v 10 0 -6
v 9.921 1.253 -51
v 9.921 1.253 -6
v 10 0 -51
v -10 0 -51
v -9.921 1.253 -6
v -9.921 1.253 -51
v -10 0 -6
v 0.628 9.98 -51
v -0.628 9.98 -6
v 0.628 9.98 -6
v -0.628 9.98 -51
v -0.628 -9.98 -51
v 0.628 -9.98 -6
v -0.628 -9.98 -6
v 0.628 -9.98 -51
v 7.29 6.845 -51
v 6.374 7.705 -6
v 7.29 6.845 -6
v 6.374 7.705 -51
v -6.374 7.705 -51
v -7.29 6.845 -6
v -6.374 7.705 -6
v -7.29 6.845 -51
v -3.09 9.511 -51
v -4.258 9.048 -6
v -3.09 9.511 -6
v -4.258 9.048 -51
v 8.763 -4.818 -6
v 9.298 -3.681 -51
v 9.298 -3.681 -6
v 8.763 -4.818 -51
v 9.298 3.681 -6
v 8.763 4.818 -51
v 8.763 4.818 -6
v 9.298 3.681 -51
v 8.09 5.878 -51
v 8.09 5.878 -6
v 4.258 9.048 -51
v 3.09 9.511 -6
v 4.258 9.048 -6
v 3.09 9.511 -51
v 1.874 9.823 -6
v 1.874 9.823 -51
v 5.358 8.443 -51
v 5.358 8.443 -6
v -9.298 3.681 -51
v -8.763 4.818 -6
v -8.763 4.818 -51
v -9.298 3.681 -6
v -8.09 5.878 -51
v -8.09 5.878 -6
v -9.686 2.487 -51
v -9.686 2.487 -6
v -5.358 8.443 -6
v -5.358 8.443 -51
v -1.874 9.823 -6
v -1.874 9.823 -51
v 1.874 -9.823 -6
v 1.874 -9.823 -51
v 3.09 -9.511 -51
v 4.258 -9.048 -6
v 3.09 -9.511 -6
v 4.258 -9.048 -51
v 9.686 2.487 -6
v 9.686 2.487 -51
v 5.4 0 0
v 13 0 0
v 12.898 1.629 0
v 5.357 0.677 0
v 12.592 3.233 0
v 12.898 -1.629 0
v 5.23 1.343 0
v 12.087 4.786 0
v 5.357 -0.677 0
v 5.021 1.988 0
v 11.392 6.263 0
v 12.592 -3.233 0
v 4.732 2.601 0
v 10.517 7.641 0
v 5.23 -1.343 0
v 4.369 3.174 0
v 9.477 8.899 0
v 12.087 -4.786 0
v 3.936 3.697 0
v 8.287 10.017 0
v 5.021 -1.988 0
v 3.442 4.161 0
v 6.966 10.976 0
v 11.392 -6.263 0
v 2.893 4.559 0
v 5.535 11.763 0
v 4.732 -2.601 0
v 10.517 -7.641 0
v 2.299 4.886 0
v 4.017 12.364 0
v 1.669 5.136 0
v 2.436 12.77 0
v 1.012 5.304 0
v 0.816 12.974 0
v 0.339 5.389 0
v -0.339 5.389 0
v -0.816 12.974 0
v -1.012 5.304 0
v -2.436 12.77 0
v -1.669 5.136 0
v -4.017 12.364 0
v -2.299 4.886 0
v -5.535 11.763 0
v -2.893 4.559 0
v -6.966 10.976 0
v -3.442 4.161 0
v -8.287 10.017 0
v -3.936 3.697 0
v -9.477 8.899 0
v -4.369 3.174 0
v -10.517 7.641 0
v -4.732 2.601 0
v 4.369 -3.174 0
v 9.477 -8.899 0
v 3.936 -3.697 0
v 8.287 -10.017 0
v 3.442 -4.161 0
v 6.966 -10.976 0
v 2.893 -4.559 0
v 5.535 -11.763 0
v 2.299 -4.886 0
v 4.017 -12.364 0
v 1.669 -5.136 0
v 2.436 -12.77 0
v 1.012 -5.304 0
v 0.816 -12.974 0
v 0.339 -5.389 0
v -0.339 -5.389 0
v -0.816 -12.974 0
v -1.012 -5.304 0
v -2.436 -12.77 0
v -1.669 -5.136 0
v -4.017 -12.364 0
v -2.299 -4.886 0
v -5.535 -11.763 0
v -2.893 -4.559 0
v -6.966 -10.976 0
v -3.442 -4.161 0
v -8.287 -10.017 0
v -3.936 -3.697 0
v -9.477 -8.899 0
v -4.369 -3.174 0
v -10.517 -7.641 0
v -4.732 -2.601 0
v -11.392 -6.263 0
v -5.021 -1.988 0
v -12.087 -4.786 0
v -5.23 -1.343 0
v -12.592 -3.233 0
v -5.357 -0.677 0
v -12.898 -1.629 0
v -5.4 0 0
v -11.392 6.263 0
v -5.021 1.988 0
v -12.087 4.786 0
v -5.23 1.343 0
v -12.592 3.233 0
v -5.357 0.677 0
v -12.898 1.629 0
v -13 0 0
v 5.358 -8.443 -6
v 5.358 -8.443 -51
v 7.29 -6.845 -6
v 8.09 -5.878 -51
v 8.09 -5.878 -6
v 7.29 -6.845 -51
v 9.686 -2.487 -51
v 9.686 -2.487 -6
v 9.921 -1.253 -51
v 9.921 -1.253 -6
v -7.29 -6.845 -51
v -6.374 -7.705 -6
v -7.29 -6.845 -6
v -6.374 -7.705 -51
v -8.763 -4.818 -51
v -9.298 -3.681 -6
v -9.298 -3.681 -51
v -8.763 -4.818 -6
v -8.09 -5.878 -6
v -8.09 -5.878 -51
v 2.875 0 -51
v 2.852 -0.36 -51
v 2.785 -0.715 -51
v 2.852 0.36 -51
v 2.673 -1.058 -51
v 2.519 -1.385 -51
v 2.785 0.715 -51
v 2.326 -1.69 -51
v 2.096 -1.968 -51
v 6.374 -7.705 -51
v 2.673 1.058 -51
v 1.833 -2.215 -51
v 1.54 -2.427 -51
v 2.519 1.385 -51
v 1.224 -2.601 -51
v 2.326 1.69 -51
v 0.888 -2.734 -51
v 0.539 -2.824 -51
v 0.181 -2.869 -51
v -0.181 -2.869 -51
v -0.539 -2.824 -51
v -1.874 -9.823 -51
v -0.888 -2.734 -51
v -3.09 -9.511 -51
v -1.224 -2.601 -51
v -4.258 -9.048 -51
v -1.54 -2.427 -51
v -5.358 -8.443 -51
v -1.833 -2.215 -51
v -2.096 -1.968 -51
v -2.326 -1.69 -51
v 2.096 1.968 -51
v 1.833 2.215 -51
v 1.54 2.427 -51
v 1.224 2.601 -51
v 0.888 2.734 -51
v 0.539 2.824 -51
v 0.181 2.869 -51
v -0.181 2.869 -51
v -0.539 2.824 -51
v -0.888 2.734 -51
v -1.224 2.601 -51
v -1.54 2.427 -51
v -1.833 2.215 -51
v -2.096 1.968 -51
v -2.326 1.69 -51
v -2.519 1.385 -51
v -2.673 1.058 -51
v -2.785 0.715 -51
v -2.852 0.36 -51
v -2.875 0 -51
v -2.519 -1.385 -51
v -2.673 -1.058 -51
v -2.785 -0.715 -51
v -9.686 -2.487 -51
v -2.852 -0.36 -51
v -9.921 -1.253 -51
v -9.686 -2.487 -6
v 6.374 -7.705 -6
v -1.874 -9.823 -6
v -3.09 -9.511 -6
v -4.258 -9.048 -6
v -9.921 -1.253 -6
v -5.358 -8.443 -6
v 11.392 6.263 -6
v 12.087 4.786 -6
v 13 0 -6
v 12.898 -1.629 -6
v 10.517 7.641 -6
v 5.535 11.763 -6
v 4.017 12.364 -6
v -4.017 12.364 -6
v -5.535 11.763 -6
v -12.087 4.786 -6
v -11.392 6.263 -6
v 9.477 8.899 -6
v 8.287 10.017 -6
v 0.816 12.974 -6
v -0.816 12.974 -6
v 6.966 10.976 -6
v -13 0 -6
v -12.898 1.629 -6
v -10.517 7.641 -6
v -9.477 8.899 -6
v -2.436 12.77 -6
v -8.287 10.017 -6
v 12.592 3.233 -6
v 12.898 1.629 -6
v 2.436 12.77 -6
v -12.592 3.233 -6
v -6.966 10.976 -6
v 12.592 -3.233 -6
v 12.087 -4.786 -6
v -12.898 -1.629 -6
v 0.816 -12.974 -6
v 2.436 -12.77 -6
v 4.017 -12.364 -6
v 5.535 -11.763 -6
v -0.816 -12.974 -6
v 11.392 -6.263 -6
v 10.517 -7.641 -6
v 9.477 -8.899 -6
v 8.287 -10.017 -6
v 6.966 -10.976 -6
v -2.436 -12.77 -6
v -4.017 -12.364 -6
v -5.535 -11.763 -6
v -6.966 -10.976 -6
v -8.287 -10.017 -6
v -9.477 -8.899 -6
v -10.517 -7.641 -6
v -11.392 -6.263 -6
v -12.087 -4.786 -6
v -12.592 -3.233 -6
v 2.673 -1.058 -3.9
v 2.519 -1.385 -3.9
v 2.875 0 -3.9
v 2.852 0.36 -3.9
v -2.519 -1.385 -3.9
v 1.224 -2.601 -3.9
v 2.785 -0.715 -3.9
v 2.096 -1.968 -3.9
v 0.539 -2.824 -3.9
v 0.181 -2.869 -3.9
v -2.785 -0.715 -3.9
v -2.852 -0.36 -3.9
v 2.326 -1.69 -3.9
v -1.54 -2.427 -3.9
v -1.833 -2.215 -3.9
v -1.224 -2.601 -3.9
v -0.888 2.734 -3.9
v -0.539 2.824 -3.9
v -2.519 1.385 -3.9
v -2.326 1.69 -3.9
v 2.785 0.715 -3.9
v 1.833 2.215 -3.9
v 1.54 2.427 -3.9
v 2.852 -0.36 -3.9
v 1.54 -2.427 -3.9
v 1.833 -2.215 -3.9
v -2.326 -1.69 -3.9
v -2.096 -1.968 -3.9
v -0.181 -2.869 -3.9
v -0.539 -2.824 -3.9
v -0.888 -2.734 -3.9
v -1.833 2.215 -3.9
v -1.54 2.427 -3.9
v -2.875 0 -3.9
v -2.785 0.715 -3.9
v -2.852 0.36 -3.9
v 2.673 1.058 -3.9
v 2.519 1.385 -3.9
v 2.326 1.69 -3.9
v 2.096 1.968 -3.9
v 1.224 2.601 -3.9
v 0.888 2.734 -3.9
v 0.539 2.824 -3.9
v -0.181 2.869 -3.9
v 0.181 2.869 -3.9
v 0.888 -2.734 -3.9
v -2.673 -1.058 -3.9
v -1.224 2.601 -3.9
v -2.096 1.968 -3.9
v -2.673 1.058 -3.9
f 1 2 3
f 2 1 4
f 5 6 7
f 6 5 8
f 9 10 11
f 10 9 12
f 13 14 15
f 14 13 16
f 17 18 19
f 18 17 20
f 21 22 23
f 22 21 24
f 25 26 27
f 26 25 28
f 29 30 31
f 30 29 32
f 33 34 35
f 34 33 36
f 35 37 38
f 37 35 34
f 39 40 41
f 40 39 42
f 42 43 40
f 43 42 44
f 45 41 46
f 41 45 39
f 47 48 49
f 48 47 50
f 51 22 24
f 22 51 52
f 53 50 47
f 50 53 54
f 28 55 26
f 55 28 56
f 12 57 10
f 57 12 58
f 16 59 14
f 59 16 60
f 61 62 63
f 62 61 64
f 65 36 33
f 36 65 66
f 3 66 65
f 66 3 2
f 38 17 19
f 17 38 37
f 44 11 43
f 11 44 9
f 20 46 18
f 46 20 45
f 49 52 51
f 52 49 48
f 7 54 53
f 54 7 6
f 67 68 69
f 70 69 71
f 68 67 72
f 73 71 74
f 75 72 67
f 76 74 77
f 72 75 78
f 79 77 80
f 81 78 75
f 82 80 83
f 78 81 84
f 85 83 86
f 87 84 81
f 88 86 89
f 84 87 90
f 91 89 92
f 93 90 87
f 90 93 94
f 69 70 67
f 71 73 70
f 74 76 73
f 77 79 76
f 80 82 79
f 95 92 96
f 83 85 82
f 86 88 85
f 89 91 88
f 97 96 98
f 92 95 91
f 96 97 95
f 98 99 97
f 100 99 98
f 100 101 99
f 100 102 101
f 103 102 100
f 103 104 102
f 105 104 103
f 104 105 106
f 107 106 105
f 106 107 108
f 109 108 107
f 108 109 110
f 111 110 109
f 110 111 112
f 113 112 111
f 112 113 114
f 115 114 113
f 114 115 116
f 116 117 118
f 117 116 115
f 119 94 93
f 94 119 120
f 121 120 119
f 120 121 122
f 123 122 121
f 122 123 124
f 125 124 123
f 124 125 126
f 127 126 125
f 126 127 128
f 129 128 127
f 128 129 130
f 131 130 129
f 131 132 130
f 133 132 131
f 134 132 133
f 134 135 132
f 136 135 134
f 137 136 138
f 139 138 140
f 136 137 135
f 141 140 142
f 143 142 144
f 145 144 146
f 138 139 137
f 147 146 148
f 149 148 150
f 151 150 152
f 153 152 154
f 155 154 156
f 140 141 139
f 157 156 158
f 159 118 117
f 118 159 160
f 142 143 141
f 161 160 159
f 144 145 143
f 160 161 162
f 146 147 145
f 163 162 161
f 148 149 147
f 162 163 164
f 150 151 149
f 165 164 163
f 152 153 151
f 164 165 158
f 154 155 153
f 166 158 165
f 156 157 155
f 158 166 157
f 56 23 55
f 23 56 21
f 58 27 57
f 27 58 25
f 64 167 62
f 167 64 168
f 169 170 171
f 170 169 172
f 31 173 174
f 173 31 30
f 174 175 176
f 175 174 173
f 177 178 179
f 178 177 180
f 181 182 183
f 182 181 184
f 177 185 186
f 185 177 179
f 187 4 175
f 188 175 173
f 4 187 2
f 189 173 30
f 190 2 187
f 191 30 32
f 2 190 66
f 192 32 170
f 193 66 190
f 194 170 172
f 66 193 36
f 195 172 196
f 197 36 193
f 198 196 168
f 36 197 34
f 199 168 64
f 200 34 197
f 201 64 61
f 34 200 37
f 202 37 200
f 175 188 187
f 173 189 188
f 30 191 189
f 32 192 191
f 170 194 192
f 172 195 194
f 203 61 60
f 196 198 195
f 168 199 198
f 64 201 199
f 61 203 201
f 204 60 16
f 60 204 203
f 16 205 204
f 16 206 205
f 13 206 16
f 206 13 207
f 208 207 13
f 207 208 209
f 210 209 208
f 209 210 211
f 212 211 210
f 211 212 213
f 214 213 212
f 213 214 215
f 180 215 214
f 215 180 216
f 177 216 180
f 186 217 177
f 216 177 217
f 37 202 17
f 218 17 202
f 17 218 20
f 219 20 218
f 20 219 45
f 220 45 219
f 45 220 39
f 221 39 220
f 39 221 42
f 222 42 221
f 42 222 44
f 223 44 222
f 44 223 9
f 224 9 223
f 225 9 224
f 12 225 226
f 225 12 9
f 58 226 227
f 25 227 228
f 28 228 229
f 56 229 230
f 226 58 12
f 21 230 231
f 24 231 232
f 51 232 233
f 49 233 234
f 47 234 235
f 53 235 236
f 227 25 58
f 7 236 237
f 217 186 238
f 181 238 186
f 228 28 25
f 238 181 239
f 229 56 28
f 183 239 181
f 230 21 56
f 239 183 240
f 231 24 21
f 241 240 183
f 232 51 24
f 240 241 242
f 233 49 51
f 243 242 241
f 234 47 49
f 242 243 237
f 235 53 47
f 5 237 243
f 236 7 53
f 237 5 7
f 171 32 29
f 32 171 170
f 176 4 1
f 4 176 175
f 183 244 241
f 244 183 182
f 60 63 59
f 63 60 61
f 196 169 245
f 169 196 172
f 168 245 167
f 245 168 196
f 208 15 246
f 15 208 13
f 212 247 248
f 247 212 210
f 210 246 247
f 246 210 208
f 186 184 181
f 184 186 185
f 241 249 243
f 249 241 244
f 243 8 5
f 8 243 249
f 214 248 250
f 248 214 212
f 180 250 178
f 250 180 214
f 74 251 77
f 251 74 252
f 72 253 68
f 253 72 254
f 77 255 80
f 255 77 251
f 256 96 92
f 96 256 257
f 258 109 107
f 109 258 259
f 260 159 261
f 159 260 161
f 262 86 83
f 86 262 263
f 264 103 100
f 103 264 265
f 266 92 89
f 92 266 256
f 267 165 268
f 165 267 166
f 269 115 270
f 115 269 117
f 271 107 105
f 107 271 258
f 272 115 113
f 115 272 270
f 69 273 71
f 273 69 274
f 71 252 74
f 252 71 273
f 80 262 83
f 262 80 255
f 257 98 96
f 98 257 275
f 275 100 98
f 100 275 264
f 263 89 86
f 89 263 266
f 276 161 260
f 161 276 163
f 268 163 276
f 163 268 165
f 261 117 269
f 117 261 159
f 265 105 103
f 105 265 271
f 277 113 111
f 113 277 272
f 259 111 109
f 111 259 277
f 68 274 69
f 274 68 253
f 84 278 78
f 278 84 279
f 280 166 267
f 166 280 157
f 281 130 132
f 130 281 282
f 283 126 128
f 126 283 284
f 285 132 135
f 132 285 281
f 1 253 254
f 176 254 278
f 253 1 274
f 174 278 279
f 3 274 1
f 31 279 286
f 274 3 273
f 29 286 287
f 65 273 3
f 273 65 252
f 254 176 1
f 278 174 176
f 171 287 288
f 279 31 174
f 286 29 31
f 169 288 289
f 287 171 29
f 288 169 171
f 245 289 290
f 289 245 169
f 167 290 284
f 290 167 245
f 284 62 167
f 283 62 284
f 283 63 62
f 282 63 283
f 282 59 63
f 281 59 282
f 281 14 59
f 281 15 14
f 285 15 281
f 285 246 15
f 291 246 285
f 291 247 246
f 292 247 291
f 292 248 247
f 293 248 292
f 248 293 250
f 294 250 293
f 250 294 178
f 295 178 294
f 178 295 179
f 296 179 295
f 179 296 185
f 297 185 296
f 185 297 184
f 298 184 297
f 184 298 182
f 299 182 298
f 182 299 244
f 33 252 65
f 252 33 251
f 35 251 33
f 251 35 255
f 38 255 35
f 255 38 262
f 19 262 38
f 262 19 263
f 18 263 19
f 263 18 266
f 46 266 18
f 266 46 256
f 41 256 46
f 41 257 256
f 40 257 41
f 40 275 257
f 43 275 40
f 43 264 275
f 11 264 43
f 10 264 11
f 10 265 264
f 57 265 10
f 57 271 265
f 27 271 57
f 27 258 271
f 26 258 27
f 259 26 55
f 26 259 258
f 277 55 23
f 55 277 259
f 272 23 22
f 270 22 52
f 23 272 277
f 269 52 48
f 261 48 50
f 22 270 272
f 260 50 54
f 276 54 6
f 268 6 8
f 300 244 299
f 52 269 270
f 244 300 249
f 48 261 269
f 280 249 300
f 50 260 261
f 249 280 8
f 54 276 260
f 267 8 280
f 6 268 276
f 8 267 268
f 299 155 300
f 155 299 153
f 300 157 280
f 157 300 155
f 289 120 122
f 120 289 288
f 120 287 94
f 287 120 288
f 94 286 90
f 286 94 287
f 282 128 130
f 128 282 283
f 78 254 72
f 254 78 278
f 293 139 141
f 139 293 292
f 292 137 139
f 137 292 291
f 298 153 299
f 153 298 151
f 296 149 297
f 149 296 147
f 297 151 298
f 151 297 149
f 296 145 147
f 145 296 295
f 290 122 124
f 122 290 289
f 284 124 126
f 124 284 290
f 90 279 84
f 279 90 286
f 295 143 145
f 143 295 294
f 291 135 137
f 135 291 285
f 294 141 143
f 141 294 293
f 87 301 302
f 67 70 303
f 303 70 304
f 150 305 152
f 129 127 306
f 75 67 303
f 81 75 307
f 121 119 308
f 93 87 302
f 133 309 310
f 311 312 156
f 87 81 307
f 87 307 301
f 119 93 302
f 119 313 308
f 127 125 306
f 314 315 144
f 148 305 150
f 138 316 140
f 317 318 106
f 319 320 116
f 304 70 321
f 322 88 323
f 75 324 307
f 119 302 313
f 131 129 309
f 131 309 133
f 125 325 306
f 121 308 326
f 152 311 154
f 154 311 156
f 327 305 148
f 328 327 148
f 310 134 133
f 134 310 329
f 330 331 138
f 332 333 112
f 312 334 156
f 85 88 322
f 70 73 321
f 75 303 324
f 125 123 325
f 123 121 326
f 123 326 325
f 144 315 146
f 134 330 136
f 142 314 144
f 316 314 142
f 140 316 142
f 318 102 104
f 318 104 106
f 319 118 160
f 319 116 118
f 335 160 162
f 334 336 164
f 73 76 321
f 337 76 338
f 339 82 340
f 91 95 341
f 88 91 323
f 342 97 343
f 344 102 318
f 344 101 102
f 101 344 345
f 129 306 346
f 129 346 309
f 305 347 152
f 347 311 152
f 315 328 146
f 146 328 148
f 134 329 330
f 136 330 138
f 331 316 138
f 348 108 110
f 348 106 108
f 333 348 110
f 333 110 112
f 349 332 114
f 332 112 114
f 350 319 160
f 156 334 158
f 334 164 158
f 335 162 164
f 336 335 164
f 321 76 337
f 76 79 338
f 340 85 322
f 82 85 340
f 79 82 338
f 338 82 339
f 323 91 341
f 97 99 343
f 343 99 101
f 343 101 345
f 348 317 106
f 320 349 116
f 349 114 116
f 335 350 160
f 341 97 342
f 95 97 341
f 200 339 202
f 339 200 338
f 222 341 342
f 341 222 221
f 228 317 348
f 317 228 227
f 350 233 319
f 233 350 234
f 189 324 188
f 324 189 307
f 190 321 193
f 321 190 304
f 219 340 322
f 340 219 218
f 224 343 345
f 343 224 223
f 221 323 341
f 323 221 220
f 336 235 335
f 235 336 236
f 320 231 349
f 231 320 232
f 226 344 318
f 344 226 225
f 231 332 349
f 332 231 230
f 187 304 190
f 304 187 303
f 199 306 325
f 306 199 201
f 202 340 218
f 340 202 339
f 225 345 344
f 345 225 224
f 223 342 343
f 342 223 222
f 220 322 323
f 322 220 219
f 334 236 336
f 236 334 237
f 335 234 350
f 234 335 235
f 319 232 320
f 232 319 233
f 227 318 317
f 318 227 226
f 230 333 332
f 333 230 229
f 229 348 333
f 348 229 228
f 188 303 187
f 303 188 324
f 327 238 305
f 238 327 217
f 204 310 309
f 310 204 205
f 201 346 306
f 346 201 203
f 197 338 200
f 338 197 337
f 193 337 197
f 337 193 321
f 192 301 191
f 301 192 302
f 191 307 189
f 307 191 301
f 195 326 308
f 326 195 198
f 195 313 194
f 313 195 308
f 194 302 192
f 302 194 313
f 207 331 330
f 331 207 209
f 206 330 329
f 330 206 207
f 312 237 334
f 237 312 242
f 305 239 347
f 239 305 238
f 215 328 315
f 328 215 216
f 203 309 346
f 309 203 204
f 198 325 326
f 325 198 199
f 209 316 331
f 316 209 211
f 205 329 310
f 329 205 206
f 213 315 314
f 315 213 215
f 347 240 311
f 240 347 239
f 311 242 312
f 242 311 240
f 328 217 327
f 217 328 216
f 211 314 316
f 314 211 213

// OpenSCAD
$fn = 50;


difference() {
	union() {
		translate(v = [0, 0, -51.0000000000]) {
			cylinder(h = 51, r = 10.0000000000);
		}
		translate(v = [0, 0, -6.0000000000]) {
			cylinder(h = 6, r = 13.0000000000);
		}
	}
	union() {
		translate(v = [0, 0, 0]) {
			rotate(a = [0, 0, 0]) {
				difference() {
					union() {
						#translate(v = [0, 0, -51.0000000000]) {
							cylinder(h = 51, r = 2.6000000000);
						}
						#translate(v = [0, 0, -3.9000000000]) {
							cylinder(h = 3.9000000000, r = 10.0000000000, r1 = 2.8750000000, r2 = 5.4000000000);
						}
						#translate(v = [0, 0, -51.0000000000]) {
							cylinder(h = 51, r = 2.8750000000);
						}
						#translate(v = [0, 0, -51.0000000000]) {
							cylinder(h = 51, r = 2.6000000000);
						}
					}
					union();
				}
			}
		}
	}
}
